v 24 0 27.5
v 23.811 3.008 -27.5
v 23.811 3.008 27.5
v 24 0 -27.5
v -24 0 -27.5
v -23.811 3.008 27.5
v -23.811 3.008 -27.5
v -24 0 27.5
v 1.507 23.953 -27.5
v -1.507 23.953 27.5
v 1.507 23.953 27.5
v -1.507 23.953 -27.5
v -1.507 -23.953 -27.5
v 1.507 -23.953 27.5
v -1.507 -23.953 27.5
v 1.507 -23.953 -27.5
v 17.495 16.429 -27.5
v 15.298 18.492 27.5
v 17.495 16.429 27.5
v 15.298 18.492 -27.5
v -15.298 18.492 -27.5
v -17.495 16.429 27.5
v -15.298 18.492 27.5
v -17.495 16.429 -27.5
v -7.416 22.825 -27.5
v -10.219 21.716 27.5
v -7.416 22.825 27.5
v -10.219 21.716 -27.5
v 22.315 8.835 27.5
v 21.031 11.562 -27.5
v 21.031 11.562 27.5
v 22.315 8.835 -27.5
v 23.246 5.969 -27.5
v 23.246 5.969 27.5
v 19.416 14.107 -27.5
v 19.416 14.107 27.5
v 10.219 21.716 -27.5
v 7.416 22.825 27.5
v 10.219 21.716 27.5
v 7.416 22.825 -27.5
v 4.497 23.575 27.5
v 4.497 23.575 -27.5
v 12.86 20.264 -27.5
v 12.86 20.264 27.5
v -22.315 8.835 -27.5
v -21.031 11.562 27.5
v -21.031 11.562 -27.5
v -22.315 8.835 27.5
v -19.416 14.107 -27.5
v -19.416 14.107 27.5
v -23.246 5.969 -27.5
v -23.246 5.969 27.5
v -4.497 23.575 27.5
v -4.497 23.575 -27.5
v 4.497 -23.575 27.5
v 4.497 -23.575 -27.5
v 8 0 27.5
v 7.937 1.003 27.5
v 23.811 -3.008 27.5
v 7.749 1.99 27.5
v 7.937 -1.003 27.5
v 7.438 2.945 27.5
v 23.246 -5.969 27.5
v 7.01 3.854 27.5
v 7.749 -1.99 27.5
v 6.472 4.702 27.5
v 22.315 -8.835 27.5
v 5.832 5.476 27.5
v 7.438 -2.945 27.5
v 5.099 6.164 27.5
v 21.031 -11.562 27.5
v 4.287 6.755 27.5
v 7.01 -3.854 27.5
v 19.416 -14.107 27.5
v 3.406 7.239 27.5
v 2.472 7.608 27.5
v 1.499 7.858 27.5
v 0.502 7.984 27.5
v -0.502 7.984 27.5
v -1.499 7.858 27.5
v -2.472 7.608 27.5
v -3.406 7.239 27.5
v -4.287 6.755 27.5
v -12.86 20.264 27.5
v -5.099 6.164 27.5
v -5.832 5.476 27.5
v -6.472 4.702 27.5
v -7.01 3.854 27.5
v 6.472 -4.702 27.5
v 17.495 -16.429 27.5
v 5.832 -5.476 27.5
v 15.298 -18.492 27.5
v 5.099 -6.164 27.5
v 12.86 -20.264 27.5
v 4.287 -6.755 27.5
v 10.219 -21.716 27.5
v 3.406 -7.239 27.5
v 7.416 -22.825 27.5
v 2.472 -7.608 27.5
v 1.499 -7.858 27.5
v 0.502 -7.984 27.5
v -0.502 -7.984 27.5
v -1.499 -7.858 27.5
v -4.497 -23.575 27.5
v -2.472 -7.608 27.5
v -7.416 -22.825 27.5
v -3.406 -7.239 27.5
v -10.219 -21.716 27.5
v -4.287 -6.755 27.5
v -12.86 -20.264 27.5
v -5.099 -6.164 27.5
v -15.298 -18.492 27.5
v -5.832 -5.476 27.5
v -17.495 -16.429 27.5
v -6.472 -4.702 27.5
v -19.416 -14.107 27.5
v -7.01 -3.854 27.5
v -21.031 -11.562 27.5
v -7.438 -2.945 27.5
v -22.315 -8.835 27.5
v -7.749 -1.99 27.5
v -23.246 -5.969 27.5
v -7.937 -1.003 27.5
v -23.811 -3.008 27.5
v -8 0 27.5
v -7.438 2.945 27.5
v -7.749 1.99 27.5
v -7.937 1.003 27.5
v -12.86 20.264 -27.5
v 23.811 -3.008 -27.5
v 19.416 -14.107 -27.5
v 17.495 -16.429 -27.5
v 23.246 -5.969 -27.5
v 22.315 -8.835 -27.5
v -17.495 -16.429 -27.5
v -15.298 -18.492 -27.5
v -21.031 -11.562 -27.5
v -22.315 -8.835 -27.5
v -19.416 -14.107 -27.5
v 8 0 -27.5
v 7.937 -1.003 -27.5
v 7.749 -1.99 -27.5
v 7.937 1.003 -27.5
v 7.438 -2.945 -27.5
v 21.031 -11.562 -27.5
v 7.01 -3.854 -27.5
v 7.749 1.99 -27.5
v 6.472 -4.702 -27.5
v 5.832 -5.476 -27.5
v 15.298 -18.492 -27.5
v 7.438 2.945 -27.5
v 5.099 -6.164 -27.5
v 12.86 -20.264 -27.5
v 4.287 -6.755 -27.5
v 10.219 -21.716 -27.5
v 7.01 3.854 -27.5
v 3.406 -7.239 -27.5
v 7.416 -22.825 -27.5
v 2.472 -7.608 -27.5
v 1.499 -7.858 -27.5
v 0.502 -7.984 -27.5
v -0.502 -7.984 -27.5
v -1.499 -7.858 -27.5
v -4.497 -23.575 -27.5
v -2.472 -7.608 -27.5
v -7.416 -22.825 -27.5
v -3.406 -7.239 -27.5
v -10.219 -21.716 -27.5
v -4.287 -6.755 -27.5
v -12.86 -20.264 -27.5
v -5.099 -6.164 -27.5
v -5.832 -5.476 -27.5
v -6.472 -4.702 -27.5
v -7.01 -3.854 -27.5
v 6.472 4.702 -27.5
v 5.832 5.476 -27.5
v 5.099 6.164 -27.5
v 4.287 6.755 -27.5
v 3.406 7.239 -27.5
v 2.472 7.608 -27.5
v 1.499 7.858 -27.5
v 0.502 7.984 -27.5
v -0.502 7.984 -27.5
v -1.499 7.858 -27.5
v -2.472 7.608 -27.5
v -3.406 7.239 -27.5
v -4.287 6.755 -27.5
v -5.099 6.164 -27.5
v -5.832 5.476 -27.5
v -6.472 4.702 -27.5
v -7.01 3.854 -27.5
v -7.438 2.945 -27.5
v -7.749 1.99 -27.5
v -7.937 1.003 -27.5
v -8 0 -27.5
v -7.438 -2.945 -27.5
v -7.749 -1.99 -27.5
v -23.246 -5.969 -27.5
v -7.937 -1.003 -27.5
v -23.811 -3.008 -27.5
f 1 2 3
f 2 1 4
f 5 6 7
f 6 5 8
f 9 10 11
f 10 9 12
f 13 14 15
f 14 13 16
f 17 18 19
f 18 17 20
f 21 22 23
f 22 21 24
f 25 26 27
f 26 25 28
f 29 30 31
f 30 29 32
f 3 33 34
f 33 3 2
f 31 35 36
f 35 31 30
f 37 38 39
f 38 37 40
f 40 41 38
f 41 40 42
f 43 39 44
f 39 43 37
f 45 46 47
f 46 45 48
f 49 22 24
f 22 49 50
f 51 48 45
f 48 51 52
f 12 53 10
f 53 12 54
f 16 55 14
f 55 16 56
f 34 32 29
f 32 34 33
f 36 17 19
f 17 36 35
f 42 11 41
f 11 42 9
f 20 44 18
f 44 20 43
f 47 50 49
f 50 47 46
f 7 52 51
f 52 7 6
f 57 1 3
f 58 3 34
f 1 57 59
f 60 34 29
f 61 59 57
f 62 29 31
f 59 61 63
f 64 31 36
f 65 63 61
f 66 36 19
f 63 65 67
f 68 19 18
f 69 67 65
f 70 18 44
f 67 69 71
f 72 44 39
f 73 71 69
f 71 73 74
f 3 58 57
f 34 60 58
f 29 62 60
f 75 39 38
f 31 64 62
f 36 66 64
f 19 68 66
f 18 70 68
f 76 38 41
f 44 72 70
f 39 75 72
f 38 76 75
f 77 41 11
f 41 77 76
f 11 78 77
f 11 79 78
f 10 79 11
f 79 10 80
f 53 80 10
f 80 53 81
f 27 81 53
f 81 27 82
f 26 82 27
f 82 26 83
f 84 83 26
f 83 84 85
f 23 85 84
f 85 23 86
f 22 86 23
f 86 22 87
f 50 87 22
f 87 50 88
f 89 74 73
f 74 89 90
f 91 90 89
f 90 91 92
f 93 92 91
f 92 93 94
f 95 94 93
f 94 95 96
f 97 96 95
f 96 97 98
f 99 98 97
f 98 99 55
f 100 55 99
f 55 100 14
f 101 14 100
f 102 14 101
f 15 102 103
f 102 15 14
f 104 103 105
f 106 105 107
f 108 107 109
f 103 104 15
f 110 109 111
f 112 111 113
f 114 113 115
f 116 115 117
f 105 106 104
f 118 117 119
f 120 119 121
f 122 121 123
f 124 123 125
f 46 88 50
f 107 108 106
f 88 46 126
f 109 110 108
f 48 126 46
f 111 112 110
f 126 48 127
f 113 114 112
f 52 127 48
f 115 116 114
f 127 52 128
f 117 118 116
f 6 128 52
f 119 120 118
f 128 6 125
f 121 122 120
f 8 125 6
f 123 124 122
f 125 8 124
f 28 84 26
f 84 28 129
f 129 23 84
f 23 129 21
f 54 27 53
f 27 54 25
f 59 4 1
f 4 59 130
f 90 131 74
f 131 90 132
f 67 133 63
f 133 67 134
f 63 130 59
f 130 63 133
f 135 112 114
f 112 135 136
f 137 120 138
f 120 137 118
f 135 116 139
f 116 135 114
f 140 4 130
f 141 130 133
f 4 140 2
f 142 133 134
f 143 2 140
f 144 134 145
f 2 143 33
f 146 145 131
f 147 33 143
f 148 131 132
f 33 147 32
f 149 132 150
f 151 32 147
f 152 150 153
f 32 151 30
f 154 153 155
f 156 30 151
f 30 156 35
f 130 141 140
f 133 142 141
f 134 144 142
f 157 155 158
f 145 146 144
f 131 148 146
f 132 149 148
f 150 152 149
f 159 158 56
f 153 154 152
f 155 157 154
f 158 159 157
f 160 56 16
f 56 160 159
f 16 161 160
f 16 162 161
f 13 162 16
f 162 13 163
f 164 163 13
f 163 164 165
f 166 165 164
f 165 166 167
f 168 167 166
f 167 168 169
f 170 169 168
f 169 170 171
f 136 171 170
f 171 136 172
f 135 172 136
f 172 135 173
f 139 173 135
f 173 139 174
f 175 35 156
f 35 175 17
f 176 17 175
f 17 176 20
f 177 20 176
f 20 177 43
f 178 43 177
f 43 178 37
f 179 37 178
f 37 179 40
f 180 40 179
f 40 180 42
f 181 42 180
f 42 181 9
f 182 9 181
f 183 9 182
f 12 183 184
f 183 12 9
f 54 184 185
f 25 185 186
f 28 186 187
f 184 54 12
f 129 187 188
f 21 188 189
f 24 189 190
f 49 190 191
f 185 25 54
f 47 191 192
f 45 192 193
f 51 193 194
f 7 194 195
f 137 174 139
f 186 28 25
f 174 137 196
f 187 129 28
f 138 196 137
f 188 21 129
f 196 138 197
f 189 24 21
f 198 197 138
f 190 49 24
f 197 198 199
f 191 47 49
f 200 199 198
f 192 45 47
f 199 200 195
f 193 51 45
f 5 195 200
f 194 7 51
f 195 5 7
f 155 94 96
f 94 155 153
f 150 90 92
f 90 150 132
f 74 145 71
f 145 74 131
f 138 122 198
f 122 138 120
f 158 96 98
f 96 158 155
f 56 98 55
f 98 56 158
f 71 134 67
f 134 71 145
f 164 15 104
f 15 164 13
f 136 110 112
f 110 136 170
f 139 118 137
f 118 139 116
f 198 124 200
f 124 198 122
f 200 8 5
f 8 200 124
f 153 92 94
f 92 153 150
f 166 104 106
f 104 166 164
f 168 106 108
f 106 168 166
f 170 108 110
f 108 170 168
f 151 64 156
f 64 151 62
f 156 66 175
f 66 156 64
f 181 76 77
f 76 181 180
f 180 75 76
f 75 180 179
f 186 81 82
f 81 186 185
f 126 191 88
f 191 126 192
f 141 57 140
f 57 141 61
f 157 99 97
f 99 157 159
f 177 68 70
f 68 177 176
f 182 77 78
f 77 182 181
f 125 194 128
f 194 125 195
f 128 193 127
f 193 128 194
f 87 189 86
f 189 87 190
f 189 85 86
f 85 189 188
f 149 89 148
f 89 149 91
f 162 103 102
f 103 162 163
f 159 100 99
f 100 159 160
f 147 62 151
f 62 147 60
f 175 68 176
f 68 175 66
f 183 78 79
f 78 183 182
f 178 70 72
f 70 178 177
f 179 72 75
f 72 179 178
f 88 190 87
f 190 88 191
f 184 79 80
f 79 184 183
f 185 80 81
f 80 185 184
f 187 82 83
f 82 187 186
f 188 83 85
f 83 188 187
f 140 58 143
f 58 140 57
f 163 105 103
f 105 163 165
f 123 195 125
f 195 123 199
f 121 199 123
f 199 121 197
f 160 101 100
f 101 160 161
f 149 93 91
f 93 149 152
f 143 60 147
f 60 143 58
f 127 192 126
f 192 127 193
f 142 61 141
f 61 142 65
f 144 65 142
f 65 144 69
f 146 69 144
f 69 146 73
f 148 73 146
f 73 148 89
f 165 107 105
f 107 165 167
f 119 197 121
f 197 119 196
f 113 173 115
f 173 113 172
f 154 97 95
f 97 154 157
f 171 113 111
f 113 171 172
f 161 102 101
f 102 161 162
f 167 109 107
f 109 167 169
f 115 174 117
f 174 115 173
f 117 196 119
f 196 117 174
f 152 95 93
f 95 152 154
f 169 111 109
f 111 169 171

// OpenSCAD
$fn = 50;


difference() {
	union() {
		translate(v = [0, 0, -27.5000000000]) {
			cylinder(h = 55, r = 24.0000000000);
		}
	}
	union() {
		translate(v = [0, 0, -100.0000000000]) {
			cylinder(h = 200, r = 8);
		}
	}
}
